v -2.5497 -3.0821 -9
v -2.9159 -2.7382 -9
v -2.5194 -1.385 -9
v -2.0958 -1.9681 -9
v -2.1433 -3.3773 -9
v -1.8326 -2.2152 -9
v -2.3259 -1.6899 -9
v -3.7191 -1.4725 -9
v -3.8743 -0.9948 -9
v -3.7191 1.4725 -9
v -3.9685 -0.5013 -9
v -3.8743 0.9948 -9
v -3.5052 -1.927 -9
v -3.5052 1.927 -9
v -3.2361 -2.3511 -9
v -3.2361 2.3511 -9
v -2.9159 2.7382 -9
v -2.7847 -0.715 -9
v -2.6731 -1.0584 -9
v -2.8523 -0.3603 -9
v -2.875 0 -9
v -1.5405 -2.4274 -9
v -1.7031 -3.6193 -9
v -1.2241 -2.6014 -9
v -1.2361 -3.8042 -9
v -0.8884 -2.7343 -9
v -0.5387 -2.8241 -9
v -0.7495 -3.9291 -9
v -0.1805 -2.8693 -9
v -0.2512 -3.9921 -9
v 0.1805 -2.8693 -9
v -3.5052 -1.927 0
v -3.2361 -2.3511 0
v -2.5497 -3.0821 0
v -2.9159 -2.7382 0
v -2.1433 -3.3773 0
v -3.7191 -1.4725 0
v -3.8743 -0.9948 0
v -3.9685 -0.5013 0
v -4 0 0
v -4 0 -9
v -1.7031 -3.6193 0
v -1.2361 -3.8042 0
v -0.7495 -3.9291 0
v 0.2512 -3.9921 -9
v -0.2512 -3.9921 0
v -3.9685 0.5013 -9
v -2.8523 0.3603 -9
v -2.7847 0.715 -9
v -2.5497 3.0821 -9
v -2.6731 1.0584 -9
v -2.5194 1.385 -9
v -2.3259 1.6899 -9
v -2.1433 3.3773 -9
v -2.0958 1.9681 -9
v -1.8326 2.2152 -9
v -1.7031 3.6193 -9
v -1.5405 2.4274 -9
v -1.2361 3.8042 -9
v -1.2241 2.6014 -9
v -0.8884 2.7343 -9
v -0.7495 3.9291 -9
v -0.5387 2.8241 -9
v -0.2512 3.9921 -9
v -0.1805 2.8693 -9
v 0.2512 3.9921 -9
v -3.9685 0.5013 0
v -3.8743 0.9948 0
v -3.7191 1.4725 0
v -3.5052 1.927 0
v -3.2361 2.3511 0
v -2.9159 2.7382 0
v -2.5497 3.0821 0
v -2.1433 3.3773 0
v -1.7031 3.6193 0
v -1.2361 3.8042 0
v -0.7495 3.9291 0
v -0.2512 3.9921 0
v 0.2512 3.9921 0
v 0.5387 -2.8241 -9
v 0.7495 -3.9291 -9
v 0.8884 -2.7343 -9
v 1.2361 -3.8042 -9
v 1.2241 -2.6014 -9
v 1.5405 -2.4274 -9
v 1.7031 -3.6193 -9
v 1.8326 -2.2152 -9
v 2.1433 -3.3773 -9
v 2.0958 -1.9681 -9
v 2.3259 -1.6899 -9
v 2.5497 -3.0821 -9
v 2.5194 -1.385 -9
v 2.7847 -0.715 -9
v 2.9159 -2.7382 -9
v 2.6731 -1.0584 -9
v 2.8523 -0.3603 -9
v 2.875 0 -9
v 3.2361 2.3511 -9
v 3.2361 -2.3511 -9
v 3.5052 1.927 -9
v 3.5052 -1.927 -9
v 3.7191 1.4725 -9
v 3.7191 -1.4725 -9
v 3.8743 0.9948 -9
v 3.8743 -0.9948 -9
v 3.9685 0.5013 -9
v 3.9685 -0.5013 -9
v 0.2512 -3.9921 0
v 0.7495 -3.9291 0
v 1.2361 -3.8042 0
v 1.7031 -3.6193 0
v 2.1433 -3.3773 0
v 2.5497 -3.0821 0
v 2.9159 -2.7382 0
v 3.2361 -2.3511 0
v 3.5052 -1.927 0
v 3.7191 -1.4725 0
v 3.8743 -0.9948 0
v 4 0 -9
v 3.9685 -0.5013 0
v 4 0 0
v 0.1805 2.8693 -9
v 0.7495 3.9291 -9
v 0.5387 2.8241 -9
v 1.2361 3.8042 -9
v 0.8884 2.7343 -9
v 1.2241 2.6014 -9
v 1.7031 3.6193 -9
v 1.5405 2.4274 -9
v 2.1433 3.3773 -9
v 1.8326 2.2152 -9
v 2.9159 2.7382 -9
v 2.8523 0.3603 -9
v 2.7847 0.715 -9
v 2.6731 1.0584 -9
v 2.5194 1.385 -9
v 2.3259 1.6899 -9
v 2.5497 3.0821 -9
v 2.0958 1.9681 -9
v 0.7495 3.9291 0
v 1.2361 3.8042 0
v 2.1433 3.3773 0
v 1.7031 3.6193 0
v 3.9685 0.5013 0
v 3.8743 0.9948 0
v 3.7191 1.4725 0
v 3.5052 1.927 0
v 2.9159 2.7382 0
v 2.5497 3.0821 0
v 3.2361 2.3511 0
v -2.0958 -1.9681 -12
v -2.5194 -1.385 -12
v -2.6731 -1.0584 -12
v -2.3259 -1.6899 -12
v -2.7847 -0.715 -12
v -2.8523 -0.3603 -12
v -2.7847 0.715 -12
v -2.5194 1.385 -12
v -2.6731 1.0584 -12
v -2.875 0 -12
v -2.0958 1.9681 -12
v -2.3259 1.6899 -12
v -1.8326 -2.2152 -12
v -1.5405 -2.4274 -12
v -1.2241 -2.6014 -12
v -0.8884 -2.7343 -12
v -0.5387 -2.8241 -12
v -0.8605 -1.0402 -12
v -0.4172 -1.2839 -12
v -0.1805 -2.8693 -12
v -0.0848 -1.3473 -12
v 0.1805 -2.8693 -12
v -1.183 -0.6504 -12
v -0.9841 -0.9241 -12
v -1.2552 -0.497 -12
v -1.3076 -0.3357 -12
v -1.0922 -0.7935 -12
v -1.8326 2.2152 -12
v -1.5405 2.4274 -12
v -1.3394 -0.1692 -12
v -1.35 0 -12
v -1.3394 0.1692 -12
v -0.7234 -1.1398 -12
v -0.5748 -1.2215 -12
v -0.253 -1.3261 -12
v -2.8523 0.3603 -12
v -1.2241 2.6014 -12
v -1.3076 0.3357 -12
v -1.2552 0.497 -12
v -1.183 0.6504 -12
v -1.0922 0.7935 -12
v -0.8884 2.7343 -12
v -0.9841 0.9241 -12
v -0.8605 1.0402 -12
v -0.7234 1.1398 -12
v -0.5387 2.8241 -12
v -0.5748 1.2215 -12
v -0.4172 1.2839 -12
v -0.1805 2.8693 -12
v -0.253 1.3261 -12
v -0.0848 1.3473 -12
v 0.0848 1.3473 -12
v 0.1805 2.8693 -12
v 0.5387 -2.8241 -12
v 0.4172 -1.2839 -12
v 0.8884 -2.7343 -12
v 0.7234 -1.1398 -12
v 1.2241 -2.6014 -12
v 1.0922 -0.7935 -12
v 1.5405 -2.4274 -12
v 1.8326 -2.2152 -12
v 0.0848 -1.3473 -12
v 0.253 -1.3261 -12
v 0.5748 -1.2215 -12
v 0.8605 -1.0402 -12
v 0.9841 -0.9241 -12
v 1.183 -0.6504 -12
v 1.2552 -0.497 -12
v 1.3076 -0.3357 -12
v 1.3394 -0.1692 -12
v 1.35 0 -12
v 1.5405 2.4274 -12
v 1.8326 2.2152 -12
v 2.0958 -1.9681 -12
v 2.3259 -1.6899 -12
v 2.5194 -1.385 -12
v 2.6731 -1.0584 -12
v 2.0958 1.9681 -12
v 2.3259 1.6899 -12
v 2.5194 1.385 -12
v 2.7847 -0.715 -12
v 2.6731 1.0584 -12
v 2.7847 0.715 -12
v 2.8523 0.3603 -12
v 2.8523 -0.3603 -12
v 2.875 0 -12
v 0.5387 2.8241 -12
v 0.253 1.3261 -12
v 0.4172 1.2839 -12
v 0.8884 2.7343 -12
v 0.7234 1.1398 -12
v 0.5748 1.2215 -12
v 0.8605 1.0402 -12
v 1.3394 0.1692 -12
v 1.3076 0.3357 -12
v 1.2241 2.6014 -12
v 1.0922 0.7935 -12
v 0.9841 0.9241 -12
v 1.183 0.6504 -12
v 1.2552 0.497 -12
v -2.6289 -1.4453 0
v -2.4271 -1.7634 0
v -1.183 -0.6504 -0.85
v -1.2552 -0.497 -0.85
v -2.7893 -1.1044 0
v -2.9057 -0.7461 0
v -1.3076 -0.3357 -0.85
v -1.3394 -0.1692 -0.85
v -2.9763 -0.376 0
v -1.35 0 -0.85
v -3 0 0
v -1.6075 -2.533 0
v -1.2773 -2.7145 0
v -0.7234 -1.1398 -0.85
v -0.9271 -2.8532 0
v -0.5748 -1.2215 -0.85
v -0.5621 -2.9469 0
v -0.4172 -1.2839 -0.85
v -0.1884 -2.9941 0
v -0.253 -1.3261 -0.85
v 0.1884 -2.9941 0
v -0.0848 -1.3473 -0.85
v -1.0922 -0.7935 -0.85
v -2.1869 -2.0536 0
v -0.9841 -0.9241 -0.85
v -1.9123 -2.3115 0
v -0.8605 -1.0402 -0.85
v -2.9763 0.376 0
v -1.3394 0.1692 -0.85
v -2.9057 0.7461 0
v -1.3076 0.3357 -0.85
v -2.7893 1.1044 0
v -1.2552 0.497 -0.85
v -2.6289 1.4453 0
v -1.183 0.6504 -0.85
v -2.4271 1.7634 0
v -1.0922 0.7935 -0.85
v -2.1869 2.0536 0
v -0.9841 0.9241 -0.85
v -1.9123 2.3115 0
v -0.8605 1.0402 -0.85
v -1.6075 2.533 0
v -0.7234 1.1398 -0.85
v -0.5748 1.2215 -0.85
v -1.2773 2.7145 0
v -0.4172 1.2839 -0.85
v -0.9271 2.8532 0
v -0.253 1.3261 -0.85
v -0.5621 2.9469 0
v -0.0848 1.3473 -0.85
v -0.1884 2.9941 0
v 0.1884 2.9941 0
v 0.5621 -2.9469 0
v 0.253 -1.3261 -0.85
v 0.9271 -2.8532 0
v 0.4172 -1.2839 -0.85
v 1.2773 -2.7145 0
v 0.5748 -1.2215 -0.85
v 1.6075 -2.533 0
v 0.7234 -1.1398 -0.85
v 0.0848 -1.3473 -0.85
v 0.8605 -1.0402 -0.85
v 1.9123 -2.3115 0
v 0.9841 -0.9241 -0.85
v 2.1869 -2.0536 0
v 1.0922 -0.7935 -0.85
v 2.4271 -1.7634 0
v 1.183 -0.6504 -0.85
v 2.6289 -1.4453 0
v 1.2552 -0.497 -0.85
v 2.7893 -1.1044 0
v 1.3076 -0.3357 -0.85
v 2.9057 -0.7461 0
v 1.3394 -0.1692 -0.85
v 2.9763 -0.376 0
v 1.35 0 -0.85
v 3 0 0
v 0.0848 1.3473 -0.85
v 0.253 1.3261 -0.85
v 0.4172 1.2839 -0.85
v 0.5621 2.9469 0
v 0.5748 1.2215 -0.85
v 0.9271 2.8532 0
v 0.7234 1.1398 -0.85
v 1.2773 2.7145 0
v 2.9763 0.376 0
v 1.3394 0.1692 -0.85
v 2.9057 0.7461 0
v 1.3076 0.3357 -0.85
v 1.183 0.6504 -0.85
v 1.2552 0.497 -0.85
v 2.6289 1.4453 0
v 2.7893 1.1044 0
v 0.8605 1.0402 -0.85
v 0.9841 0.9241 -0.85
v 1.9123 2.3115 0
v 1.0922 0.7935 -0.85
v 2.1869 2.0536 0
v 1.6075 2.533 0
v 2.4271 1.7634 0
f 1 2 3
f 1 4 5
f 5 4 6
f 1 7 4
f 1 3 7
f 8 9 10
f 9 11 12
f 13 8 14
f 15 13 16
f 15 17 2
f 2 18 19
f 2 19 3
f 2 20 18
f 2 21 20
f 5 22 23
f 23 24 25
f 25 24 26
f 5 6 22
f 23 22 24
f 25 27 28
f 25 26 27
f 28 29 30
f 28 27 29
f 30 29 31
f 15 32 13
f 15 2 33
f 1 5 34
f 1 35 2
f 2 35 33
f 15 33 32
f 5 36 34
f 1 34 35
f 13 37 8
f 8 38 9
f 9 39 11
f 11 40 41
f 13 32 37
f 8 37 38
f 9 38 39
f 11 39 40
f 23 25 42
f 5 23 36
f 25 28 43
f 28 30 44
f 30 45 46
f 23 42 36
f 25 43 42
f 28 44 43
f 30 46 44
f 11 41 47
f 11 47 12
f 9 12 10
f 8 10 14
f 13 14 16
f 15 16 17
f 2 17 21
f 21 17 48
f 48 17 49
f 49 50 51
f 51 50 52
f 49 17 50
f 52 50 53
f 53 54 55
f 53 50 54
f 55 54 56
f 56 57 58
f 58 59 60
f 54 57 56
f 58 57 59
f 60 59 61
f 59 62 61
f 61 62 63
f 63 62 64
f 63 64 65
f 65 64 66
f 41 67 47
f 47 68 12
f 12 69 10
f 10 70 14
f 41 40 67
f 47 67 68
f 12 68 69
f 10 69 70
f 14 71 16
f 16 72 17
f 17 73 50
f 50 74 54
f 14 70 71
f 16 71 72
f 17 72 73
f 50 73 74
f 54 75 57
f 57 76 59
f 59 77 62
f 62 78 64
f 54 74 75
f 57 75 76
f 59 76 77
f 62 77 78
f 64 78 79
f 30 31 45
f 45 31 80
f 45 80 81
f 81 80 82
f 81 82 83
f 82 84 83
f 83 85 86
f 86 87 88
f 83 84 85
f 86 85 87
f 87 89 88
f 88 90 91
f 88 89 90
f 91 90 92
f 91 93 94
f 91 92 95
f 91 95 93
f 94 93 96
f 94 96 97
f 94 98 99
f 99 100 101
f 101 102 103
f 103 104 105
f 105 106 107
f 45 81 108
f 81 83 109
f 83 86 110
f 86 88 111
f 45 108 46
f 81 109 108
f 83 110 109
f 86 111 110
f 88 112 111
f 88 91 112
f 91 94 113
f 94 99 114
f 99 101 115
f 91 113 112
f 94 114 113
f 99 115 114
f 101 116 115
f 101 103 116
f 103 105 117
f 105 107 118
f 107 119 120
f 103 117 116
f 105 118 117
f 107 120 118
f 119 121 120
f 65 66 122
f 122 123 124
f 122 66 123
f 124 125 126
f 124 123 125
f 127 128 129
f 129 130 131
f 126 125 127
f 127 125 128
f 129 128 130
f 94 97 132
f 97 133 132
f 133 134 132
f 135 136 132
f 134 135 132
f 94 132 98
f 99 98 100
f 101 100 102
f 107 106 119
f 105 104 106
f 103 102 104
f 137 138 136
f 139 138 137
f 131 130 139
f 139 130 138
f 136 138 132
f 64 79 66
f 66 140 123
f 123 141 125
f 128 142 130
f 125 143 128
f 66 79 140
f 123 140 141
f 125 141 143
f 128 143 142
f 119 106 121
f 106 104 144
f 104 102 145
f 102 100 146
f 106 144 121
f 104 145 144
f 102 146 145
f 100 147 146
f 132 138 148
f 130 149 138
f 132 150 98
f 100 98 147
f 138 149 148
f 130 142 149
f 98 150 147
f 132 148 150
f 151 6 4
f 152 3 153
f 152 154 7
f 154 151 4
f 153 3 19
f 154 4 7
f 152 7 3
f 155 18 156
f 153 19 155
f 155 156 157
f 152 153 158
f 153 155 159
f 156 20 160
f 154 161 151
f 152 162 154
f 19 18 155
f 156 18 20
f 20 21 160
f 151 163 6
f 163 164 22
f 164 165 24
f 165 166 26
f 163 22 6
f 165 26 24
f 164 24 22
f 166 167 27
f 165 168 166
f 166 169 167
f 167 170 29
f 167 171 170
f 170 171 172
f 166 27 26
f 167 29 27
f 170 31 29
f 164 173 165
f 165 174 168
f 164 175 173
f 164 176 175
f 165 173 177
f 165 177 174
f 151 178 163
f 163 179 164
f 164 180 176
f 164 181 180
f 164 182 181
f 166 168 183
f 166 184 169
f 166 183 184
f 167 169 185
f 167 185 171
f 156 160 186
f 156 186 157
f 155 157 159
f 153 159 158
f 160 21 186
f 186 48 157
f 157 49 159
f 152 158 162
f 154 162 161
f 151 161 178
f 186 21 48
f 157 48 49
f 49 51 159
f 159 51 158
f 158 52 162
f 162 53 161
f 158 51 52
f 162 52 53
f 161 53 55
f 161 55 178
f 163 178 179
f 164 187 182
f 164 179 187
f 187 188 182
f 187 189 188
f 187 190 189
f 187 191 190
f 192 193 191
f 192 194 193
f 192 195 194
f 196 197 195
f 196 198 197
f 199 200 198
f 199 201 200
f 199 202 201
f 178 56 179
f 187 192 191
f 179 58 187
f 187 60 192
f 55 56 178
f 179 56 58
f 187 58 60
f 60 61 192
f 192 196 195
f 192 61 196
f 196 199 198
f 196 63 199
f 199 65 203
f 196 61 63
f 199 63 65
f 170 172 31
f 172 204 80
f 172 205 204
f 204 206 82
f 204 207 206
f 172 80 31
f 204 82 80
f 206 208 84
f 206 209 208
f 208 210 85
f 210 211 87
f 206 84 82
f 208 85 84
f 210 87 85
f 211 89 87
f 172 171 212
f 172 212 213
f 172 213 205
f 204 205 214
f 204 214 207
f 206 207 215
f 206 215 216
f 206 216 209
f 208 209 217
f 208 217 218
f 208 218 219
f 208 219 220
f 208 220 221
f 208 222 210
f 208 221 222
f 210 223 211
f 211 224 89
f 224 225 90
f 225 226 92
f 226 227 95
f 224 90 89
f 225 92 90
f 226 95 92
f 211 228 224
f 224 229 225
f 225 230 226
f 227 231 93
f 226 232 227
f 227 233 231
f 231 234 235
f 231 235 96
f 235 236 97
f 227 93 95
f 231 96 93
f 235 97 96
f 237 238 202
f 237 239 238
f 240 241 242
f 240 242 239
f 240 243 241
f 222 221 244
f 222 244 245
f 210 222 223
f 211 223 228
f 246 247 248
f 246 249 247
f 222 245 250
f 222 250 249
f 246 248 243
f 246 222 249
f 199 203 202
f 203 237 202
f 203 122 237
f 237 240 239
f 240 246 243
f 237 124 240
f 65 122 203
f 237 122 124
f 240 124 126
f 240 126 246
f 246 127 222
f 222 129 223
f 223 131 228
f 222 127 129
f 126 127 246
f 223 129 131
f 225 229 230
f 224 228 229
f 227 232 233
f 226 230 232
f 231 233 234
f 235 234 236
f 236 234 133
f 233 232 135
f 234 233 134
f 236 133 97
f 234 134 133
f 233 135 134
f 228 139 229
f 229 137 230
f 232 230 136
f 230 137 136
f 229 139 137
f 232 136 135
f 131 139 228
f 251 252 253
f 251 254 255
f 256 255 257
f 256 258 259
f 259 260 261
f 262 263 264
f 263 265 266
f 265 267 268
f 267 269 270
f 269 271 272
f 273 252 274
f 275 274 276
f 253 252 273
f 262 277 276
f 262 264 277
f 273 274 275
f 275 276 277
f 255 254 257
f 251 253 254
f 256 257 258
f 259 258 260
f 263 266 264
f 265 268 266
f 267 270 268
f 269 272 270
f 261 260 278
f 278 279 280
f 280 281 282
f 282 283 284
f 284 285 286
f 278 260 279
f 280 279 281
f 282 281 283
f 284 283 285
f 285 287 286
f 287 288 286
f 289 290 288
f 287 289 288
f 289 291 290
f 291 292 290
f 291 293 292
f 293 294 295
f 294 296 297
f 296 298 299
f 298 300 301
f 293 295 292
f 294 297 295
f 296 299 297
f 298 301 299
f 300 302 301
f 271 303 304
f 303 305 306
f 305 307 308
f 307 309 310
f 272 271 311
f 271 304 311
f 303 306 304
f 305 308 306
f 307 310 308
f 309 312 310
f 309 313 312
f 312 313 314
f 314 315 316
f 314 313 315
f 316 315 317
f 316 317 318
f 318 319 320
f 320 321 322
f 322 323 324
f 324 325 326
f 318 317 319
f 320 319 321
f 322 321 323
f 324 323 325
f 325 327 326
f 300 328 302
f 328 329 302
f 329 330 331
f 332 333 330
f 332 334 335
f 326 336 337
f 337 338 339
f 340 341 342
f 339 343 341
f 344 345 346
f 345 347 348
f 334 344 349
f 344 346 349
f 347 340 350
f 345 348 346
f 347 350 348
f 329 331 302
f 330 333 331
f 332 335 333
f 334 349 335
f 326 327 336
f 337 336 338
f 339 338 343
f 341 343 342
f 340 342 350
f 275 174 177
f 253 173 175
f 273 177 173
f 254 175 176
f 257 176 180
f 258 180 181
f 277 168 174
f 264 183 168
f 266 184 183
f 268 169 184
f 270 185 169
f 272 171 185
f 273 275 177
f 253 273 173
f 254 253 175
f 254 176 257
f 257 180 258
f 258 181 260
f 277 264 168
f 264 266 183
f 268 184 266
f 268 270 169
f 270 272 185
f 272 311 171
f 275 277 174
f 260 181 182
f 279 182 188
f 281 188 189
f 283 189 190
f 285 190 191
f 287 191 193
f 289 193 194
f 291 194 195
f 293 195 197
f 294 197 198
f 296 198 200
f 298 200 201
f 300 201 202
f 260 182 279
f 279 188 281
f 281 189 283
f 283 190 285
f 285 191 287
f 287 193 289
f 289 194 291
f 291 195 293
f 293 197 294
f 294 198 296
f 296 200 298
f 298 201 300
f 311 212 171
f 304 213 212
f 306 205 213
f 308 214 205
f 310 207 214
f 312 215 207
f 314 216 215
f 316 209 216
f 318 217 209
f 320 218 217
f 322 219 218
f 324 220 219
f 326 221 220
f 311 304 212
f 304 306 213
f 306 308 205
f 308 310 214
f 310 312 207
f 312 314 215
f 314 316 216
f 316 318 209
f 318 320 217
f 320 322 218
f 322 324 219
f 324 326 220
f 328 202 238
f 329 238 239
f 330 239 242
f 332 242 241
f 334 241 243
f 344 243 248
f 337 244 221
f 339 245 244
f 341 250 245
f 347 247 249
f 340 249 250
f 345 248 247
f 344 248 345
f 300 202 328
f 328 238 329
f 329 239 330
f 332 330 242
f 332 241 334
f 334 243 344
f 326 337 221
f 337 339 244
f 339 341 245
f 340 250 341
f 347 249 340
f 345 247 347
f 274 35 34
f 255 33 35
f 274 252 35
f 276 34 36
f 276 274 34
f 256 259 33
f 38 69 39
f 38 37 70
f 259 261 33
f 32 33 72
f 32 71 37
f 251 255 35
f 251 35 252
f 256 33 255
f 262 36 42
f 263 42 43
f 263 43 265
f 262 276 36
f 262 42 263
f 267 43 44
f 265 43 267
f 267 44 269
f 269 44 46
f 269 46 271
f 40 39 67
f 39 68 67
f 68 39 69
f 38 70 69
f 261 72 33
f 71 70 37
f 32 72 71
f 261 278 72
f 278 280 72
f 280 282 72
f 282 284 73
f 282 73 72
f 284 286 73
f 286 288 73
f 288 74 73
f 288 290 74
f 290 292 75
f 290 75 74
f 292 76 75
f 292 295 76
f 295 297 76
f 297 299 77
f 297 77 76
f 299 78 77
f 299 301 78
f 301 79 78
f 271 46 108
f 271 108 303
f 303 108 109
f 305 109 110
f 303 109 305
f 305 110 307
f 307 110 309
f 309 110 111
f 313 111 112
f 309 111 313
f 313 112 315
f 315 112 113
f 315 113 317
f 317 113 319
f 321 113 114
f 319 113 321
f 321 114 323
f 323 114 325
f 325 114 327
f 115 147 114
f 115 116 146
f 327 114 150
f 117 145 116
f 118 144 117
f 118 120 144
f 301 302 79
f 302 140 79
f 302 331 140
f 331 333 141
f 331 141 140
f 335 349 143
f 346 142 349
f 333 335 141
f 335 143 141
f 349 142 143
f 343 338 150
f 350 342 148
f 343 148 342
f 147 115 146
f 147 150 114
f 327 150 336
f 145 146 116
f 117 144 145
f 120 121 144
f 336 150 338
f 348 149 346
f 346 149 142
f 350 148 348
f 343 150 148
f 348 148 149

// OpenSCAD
$fn = 50;

difference() {
	union() {
		translate(v = [0, 0, -9.0]) {
			cylinder(h = 12, r = 4.0);
		}
		#translate(v = [0, 0, -12.0]) {
			cylinder(h = 12, r = 2.875);
		}
	}
	union() {
		translate(v = [0, 0, 0]) {
			rotate(a = [0, 0, 0]) {
				difference() {
					union() {
						translate(v = [0, 0, -12.0]) {
							cylinder(h = 12, r = 1.0);
						}
						translate(v = [0, 0, -0.85]) {
							cylinder(h = 0.85, r1 = 1.35, r2 = 3.0);
						}
						translate(v = [0, 0, -12.0]) {
							cylinder(h = 12, r = 1.35);
						}
						translate(v = [0, 0, -12.0]) {
							cylinder(h = 12, r = 1.0);
						}
					}
					union();
				}
			}
		}
		#cylinder(h = 3, r = 5.0);
	}
}
